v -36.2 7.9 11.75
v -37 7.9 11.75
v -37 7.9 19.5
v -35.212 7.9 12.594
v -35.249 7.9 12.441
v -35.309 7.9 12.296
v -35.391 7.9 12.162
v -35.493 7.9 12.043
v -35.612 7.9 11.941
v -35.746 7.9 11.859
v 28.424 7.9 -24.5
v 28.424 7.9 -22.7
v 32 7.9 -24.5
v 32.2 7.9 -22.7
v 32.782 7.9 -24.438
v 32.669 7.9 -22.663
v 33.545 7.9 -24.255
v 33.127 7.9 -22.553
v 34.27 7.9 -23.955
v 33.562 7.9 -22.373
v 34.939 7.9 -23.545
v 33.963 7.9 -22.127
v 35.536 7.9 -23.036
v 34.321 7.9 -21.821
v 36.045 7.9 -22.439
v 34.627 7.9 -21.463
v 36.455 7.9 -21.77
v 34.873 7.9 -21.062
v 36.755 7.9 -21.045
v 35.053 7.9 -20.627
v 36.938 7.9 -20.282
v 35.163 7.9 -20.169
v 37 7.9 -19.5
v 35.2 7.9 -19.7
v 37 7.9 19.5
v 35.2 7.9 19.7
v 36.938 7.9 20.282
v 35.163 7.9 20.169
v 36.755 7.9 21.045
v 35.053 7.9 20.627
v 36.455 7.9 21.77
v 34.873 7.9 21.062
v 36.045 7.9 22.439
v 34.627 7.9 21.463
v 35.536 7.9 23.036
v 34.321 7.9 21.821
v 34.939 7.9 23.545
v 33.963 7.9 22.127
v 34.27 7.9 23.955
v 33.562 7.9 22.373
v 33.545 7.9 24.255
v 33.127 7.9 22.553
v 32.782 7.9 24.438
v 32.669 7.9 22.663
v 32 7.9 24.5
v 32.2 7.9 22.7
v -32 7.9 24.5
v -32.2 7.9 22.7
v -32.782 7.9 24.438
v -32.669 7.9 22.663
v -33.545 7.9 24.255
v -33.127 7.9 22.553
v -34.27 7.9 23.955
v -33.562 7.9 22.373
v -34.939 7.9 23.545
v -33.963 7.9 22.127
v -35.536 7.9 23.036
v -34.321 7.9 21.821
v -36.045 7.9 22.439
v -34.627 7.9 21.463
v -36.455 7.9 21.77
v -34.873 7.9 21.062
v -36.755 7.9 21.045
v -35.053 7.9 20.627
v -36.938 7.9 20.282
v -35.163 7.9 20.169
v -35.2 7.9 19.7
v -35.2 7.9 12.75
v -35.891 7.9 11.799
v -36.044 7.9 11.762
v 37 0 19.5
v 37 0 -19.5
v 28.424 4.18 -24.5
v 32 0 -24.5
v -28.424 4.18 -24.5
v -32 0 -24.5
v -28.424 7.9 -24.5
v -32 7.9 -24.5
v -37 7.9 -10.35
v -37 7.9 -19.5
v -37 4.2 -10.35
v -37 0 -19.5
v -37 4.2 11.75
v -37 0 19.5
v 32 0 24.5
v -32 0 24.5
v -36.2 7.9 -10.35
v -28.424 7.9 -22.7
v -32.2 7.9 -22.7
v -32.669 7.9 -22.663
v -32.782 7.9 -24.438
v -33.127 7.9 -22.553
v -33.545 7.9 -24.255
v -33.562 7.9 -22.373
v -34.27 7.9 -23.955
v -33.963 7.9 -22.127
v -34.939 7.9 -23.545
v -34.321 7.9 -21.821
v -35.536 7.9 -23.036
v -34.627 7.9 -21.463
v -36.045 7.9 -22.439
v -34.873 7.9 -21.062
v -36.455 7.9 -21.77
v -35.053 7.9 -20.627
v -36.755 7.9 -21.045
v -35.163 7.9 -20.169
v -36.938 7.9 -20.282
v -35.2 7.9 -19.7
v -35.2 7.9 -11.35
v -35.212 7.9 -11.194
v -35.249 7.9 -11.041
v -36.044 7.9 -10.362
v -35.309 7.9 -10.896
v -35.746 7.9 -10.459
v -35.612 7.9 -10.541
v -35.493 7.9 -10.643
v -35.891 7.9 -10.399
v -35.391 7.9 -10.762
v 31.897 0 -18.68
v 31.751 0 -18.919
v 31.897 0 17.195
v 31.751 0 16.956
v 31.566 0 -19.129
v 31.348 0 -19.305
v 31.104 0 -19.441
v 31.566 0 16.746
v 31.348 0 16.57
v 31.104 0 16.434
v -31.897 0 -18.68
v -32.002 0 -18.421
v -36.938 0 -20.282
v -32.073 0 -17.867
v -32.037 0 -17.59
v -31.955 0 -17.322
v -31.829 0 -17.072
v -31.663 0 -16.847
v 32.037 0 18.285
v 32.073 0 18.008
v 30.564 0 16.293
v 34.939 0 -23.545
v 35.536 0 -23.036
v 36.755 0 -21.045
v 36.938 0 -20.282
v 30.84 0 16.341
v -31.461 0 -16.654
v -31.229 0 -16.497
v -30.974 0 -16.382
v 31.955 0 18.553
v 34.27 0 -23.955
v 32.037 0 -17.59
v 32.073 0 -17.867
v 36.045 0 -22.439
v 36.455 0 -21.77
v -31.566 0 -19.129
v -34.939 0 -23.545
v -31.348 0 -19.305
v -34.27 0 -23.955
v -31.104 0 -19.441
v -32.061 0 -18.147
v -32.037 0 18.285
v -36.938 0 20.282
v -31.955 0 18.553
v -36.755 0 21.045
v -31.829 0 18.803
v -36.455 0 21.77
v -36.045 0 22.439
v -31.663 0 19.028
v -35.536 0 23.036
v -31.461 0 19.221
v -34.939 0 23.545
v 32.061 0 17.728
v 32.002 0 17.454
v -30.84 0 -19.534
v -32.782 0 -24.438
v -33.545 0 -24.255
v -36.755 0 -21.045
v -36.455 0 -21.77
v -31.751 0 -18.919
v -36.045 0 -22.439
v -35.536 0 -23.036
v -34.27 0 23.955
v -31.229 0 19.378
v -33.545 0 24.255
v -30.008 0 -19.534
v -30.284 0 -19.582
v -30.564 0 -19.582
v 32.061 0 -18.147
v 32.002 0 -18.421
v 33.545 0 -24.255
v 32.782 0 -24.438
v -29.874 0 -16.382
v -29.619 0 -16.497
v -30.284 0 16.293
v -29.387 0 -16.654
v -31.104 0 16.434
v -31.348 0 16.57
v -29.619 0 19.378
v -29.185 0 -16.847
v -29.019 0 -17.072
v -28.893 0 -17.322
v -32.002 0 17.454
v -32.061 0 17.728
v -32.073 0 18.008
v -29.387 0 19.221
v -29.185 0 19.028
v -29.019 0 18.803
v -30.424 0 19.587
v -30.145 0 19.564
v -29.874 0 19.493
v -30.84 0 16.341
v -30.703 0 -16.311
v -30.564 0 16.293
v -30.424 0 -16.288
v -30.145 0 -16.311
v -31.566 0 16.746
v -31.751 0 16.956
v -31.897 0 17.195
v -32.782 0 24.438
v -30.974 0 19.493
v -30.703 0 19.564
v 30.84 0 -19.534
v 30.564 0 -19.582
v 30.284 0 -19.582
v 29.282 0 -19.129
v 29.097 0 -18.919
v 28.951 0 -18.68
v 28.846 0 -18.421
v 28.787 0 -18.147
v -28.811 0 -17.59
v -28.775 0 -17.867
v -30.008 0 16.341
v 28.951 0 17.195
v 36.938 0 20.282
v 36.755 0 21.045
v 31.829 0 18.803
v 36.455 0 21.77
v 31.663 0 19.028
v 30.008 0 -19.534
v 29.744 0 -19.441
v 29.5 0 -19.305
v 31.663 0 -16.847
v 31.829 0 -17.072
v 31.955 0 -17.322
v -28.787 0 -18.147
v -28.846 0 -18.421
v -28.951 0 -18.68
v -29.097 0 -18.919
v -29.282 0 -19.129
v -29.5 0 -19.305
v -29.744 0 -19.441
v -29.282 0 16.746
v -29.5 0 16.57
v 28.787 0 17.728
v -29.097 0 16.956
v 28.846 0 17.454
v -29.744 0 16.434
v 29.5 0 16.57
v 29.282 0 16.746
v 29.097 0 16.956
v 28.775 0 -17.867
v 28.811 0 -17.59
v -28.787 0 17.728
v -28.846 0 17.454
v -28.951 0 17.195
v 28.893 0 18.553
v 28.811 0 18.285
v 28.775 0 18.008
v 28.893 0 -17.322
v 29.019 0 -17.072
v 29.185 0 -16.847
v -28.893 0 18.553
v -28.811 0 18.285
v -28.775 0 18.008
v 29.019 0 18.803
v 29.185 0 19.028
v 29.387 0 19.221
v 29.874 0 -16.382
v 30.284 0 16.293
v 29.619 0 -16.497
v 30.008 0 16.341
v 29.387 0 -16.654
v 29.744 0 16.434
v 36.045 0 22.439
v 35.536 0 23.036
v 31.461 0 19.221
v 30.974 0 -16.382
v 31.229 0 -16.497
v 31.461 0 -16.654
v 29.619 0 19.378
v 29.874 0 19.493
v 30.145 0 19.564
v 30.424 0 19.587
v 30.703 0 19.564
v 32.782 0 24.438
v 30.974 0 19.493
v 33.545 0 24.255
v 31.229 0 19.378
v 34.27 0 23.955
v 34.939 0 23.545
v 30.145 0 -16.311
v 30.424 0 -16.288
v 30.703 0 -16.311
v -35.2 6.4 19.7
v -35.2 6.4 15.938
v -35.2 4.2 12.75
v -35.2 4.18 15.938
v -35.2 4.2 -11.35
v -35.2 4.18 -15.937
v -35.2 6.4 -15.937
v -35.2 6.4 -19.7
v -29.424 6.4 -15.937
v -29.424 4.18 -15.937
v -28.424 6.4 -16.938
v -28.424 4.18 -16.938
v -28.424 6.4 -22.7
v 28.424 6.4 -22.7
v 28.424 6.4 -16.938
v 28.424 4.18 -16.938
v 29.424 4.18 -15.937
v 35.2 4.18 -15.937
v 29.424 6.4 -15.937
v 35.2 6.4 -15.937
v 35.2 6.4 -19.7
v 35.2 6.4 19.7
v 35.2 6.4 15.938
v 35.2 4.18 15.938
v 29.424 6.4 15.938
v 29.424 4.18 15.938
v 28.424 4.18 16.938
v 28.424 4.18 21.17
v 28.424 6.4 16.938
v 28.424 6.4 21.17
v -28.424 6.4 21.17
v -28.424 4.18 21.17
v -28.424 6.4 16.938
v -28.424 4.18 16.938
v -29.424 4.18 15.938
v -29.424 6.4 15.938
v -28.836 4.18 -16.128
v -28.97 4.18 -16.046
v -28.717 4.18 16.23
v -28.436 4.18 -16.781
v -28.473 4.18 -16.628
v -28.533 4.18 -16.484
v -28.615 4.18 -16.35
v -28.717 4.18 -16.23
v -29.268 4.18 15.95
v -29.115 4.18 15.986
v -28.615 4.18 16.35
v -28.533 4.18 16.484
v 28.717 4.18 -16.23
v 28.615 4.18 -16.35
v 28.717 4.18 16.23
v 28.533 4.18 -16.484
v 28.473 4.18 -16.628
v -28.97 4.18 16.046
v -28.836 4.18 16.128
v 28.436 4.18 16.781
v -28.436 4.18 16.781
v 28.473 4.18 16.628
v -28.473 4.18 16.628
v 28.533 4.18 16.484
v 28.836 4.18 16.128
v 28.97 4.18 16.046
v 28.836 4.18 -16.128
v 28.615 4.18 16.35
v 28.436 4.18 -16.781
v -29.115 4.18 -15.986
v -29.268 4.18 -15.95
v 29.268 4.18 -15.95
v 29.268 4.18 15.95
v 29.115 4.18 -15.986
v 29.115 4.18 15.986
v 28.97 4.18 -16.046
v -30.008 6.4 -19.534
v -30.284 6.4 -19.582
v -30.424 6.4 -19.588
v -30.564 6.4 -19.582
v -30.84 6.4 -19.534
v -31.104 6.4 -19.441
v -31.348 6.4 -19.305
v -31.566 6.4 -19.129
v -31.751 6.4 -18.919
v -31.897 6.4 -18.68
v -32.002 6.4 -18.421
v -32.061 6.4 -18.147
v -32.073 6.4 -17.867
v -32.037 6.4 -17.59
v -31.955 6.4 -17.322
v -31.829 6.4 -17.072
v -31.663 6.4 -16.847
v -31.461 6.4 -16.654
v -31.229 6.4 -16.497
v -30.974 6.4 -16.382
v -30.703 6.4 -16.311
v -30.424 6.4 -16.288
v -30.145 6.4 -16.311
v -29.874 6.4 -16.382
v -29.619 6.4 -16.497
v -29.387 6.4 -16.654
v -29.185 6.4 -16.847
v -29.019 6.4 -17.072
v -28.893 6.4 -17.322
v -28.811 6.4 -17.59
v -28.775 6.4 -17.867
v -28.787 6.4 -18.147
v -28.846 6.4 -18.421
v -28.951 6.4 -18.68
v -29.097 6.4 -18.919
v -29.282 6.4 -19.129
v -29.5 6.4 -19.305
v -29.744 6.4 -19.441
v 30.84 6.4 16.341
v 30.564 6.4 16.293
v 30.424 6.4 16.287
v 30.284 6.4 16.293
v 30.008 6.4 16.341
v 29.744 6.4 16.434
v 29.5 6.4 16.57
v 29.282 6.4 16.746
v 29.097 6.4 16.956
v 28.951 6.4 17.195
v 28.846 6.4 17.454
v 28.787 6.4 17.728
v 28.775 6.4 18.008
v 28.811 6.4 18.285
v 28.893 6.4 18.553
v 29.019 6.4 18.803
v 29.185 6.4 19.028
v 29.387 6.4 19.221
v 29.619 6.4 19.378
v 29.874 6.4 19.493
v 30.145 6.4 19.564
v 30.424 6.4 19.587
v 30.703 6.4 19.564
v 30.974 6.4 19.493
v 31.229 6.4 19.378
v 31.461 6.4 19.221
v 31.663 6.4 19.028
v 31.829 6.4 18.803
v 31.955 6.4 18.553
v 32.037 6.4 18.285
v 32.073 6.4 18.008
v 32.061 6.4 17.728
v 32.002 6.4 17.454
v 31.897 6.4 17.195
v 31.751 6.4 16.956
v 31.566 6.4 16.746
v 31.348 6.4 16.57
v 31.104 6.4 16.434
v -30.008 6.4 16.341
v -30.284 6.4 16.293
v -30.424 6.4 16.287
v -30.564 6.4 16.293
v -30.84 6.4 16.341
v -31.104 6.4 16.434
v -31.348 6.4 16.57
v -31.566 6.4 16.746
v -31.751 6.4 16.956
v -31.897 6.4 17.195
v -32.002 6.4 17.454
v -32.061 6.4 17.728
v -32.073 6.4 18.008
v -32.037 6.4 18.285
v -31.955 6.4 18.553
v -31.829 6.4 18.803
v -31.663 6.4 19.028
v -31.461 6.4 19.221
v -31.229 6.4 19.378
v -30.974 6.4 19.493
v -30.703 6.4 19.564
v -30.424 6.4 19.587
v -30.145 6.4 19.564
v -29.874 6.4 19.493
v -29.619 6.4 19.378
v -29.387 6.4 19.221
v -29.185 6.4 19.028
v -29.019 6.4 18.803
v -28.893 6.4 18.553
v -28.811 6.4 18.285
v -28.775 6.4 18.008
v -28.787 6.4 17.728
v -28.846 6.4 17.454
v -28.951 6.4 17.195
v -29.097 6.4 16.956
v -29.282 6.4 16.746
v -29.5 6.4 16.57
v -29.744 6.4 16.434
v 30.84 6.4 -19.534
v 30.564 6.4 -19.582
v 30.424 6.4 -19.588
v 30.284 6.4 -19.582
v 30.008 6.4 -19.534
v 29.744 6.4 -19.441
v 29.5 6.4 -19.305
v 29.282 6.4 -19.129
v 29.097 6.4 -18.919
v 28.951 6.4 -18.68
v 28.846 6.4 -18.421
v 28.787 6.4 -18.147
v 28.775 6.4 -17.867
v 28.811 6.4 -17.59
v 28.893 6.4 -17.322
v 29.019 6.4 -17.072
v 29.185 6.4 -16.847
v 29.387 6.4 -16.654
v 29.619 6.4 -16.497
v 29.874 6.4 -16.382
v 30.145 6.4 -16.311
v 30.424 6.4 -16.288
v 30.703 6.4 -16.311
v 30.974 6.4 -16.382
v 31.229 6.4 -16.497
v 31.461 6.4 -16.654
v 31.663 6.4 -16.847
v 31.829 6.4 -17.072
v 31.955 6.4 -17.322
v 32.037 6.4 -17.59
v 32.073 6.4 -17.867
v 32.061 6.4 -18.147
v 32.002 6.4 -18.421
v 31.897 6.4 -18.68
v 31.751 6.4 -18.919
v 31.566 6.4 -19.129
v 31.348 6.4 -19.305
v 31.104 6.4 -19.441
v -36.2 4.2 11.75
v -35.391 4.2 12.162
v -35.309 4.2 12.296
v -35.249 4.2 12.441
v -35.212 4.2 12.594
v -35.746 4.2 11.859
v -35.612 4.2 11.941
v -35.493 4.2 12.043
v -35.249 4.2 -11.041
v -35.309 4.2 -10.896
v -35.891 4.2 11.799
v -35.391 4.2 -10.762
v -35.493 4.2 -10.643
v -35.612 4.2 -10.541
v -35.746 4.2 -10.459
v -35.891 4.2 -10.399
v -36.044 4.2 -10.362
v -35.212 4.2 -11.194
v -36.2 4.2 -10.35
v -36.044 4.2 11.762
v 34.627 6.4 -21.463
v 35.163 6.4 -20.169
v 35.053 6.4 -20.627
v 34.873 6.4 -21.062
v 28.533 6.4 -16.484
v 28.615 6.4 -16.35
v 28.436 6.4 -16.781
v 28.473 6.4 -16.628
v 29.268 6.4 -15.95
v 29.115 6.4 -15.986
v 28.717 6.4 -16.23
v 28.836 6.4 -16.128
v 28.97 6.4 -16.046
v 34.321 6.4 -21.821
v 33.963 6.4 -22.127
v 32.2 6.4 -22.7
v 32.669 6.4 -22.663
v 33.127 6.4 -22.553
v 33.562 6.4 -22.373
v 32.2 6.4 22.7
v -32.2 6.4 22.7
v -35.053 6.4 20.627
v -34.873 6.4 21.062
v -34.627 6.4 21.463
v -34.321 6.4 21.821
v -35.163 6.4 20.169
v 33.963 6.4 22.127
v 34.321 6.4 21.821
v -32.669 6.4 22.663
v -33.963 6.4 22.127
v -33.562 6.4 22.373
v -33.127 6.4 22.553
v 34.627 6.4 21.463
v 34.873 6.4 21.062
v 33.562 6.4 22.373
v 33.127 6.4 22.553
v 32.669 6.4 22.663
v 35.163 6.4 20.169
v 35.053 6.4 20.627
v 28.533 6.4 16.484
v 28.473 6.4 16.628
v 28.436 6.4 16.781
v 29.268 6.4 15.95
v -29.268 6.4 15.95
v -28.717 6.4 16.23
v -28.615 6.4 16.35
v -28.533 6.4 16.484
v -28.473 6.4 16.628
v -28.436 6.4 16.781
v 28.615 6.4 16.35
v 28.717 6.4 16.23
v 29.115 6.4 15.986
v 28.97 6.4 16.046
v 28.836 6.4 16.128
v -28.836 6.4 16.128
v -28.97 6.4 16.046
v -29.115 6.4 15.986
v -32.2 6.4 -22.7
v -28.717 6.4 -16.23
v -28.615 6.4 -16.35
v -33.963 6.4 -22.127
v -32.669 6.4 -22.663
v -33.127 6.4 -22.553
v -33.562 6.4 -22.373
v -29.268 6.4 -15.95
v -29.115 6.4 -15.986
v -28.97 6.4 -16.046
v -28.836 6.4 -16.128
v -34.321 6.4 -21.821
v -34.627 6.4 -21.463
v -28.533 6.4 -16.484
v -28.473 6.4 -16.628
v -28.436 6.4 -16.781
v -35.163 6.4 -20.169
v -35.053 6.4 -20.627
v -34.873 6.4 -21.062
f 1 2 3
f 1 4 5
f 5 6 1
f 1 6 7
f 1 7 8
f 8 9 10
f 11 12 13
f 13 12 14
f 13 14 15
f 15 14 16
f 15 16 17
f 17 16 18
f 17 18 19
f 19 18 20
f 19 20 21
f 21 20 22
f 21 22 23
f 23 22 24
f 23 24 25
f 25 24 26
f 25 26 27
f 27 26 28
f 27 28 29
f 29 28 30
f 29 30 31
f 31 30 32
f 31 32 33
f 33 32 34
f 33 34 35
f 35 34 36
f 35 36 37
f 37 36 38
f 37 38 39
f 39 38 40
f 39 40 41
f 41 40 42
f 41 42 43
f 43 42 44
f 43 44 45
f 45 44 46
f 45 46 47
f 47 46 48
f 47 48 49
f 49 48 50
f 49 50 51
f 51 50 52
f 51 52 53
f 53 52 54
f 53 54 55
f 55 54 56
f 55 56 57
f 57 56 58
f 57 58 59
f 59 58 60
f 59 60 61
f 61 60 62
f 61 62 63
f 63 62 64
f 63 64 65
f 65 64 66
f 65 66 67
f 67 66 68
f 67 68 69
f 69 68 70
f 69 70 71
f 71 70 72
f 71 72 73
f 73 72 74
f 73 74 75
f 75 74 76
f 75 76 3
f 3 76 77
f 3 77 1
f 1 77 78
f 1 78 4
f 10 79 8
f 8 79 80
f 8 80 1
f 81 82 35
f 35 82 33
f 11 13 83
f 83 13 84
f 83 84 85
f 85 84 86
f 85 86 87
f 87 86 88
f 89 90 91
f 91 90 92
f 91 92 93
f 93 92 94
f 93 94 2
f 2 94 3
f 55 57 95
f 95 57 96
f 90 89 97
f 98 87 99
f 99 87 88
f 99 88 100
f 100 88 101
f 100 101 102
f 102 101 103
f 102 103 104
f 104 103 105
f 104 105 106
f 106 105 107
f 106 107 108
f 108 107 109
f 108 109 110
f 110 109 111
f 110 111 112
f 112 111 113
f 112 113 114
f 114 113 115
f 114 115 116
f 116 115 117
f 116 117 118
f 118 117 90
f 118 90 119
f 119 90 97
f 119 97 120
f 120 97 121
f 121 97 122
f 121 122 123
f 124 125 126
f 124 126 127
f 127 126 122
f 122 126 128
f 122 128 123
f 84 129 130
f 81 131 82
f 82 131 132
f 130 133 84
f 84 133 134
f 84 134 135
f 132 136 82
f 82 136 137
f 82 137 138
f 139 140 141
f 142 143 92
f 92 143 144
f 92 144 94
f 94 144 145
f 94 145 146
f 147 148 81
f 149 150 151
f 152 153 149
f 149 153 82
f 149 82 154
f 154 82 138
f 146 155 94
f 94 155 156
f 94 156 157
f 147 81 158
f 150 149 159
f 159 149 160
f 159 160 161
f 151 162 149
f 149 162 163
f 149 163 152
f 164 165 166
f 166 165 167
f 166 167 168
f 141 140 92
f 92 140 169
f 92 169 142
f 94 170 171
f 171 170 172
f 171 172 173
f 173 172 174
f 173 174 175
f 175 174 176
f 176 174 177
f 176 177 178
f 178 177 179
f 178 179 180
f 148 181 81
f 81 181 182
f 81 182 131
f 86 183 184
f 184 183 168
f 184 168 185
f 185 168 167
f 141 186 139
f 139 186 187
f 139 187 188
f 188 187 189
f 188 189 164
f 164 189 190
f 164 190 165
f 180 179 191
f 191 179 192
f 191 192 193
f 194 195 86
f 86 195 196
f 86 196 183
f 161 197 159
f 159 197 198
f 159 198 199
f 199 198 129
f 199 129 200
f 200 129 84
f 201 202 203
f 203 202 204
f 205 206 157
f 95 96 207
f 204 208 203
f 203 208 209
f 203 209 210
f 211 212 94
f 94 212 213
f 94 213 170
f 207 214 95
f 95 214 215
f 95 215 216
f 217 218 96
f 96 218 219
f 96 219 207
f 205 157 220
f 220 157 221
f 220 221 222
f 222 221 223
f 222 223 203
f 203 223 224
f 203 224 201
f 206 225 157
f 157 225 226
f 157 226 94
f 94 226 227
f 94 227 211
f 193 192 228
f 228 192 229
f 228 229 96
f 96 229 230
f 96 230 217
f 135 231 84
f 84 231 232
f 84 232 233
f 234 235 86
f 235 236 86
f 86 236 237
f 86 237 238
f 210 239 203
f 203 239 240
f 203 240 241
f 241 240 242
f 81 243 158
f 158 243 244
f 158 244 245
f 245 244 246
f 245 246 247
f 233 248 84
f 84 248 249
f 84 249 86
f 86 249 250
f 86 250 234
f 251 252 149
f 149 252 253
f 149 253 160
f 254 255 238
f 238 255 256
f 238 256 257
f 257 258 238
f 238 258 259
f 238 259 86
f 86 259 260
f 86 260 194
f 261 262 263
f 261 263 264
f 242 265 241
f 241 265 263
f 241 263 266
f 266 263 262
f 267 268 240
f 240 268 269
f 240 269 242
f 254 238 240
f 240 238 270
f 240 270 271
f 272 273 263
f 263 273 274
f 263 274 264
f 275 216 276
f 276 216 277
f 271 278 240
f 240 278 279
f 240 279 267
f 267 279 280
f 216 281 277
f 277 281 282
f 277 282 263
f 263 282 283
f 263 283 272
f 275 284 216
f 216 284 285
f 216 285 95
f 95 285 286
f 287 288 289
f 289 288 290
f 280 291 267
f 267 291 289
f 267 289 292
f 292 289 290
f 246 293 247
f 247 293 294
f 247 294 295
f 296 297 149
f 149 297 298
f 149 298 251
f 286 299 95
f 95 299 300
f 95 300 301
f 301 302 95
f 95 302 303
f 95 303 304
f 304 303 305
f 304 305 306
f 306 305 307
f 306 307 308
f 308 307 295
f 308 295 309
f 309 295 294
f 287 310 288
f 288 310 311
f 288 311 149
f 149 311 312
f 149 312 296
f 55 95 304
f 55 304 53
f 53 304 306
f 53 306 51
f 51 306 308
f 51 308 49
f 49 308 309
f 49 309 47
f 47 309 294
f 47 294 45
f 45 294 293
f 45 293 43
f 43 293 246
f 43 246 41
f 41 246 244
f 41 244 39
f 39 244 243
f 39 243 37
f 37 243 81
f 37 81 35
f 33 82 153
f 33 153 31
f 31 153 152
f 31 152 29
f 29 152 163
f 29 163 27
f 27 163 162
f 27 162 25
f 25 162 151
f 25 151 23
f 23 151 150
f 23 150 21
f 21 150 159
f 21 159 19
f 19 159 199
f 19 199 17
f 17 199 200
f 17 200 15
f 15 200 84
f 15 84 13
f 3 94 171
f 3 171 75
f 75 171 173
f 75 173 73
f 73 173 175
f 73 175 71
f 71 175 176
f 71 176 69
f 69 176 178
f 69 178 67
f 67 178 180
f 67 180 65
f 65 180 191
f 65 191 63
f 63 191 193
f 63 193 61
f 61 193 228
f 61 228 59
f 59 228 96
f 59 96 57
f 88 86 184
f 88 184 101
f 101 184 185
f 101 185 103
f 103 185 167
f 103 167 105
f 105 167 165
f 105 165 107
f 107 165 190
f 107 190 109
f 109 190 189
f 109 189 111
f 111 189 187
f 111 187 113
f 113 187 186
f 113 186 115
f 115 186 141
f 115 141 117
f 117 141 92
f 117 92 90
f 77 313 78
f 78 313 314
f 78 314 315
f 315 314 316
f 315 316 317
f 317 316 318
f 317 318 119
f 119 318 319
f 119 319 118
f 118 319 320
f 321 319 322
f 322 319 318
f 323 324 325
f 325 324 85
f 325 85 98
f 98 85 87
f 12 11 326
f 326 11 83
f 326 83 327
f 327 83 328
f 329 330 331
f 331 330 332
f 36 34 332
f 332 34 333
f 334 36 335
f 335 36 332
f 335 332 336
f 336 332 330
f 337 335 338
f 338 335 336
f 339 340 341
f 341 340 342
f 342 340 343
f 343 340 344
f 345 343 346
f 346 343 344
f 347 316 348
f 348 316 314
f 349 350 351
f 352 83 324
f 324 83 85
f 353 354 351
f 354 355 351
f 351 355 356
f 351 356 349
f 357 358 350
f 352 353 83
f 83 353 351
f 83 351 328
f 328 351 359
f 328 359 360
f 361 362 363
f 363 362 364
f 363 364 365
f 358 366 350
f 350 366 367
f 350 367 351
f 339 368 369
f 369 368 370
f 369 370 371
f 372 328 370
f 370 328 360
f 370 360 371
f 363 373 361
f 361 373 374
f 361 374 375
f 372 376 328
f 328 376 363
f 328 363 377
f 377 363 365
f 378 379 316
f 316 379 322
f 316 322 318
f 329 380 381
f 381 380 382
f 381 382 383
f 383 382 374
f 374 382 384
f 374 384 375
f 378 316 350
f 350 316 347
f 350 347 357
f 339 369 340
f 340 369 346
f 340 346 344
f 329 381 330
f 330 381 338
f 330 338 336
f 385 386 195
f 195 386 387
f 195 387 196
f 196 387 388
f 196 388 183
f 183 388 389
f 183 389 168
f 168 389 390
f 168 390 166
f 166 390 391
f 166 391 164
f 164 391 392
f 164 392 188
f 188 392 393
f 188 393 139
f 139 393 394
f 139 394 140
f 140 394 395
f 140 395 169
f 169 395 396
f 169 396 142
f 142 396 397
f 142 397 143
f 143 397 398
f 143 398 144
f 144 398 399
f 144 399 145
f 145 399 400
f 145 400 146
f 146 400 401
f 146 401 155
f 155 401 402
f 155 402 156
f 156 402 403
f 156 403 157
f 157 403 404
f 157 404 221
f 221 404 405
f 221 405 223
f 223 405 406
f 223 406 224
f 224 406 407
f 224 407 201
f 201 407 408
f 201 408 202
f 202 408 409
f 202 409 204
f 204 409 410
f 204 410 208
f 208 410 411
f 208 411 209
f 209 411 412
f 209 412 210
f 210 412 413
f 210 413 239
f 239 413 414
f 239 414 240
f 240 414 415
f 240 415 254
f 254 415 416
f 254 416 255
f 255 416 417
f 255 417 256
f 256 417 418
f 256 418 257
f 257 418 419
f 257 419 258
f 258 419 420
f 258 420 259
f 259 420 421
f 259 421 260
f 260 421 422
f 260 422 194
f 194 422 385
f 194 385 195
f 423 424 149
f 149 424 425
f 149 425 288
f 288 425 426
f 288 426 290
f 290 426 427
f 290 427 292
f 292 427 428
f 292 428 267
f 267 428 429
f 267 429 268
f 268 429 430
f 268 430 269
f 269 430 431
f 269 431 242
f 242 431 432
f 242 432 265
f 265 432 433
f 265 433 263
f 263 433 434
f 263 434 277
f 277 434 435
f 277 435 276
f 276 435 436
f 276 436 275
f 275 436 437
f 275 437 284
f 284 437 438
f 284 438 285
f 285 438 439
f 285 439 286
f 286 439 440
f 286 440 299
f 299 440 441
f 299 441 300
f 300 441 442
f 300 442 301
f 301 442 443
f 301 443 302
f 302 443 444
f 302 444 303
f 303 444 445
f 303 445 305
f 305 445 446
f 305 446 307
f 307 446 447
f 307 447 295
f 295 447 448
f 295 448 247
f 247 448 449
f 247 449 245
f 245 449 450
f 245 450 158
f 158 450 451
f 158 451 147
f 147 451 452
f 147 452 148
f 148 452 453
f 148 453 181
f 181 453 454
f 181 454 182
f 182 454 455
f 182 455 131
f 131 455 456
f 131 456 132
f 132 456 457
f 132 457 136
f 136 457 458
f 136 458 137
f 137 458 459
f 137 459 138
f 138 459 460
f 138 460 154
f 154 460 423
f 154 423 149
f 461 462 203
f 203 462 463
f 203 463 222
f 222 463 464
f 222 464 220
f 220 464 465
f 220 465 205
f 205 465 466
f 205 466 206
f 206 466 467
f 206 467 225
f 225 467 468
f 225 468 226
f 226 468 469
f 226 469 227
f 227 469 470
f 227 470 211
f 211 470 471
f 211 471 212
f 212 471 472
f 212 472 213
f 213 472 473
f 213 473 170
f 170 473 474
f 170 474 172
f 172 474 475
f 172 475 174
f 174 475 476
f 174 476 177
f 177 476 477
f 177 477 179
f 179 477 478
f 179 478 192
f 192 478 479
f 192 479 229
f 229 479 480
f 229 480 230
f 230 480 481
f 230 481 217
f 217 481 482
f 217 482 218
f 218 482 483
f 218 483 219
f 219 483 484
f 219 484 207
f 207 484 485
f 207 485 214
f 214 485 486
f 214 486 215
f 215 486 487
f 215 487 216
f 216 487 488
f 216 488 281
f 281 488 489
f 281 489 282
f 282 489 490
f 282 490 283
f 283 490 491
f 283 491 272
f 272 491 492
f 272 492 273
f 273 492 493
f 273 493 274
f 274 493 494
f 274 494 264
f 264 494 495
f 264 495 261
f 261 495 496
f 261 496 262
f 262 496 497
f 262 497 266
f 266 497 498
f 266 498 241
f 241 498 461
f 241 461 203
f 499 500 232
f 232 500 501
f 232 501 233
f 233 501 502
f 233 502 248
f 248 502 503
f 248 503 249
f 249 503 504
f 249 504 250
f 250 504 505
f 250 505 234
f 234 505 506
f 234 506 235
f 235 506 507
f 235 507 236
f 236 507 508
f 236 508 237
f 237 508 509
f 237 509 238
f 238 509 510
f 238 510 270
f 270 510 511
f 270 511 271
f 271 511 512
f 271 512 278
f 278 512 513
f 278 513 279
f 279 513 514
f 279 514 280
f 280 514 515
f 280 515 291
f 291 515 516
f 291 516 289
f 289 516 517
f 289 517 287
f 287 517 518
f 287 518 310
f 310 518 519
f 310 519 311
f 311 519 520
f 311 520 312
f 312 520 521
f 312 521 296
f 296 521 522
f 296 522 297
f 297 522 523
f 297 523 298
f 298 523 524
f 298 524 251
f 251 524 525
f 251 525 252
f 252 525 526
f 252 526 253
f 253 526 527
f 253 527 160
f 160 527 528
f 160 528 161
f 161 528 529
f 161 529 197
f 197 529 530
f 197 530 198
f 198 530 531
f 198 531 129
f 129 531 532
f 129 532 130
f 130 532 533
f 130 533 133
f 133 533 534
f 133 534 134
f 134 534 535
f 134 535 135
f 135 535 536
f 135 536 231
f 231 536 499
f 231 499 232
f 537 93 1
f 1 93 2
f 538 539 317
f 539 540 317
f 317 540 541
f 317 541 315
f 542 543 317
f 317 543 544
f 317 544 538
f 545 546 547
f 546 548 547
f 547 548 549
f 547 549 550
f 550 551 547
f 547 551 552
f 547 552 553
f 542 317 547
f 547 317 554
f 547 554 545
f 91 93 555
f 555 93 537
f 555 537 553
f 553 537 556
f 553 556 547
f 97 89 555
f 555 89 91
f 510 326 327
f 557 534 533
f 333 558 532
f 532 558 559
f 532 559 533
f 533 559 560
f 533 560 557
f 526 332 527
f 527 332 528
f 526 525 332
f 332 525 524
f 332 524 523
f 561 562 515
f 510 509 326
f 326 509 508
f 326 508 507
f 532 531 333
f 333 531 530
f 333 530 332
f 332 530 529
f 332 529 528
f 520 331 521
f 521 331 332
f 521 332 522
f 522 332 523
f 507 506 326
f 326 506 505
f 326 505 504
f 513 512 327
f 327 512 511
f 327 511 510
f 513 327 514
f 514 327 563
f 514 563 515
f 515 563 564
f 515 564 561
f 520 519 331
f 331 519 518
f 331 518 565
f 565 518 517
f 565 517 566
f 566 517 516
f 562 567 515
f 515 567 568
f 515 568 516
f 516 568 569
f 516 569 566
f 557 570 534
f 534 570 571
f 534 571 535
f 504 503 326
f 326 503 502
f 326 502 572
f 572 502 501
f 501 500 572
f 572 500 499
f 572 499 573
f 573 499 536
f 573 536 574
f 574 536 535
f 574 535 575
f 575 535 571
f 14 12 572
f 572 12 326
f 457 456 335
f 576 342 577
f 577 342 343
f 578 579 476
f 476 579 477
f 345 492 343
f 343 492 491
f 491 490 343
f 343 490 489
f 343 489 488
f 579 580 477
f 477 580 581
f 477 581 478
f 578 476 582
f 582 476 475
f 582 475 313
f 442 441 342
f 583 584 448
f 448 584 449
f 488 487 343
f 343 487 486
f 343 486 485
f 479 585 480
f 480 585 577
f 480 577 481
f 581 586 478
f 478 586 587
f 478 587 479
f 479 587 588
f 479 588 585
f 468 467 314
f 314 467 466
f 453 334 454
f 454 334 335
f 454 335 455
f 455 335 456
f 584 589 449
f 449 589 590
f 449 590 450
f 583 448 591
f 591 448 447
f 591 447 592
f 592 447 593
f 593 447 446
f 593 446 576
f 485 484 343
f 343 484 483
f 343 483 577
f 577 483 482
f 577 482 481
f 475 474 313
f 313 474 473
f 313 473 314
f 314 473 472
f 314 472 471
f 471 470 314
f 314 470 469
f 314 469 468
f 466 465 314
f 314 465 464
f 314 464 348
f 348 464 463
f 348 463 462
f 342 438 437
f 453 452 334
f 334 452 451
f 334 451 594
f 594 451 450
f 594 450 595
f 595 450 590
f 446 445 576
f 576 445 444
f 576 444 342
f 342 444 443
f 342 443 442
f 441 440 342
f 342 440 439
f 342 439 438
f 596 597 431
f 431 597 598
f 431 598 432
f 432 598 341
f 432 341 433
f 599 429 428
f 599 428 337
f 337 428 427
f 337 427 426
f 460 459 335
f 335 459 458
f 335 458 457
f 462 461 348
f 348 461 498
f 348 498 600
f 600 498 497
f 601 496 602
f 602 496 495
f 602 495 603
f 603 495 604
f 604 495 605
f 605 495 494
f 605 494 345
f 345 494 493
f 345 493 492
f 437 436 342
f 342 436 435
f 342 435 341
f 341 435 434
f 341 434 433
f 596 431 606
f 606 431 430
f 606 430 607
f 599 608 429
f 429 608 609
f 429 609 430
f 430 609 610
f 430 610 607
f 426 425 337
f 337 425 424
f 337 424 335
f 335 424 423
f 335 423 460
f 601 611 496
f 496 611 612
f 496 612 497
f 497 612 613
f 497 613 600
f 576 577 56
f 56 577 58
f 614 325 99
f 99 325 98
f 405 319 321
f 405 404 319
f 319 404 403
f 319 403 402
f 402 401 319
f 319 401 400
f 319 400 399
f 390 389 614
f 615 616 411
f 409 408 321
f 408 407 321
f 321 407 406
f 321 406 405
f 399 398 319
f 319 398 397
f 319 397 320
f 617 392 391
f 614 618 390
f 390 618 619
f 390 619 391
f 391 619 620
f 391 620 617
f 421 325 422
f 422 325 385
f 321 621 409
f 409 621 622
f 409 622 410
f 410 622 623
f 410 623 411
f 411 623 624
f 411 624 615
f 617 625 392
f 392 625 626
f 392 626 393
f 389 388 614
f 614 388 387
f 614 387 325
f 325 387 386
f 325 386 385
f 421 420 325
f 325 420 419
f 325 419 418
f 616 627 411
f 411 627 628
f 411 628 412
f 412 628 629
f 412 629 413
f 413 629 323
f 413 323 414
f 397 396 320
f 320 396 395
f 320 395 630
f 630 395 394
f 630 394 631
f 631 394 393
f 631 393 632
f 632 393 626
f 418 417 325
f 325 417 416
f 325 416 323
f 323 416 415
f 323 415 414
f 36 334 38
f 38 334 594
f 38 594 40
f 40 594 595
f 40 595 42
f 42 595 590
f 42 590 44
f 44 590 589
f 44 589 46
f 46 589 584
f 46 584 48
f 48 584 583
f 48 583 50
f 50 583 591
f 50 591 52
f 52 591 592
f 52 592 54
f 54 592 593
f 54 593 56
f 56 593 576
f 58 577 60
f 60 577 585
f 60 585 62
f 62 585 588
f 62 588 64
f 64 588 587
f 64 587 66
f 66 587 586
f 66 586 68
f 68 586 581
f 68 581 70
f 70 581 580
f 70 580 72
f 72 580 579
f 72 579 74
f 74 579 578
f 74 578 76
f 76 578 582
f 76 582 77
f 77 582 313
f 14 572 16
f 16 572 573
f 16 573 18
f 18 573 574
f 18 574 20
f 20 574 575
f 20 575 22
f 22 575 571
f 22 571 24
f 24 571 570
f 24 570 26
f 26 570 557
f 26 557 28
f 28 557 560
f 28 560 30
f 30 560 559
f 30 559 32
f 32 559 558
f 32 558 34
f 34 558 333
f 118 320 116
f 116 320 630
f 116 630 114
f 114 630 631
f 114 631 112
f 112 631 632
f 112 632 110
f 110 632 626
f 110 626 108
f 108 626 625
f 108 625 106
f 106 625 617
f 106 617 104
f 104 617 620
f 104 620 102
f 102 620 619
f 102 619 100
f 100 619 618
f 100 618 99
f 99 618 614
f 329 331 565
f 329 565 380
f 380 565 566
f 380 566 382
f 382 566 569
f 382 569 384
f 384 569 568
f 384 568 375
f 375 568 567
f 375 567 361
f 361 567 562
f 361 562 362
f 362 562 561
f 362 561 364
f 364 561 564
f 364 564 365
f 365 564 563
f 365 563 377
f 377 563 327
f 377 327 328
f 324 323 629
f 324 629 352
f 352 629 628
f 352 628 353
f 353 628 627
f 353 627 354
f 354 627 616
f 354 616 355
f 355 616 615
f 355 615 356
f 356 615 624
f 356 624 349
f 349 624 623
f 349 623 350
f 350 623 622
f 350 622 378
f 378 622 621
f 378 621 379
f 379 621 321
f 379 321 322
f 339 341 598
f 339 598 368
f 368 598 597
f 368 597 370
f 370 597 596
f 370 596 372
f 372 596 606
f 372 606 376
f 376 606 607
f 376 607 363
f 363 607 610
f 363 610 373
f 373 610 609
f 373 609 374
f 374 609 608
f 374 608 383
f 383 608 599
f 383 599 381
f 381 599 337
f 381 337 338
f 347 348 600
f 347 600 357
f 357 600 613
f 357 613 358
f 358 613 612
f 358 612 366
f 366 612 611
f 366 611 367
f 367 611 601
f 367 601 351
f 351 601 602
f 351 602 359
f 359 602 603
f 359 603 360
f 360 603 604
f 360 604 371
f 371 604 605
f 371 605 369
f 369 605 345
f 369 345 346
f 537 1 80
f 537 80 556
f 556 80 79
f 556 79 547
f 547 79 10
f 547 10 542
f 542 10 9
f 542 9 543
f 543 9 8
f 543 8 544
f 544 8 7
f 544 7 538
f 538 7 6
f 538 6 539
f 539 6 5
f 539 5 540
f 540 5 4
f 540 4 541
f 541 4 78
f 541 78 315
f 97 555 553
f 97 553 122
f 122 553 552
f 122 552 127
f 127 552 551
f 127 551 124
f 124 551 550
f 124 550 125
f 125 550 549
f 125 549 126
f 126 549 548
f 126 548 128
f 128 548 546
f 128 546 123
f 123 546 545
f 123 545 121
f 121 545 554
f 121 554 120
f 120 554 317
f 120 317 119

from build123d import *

# Parameters (mm, degrees)
SKETCH1_W           = 74
SKETCH1_H           = 49
BOSS_EXTRUDE1_DEPTH = 7.9
FILLET1_R           = 5
CUT_EXTRUDE4_DEPTH  = 3.72
SKETCH3_R           = 1.65
CUT_EXTRUDE6_DEPTH  = 7.9
SKETCH7_W           = 22.1
SKETCH7_H           = 3.7
CUT_EXTRUDE7_DEPTH  = 3
SKETCH8_W           = 70.4
SKETCH8_H           = 45.4
CUT_EXTRUDE8_DEPTH  = 1.5
FILLET3_R           = 3
FILLET4_R           = 1
FILLET5_R           = 1
FILLET6_R           = 1


with BuildPart() as part:
    # Sketch1 → Boss-Extrude1 (new body)
    with BuildSketch(Plane(origin=(0, 0, 0), x_dir=(1, 0, 0), z_dir=(0, 1, 0))):
        Rectangle(SKETCH1_W, SKETCH1_H)
    extrude(amount=BOSS_EXTRUDE1_DEPTH)

    # Fillet1
    fillet1_edges = [part.edges().sort_by_distance(p)[0] for p in [
        (37, 3.95, 24.5),
        (-37, 3.95, 24.5),
        (-37, 3.95, -24.5),
        (37, 3.95, -24.5),
    ]]
    fillet(fillet1_edges, radius=FILLET1_R)

    # Sketch5 → Cut-Extrude4 (cut)
    with BuildSketch(Plane(origin=(0, 7.9, 0), x_dir=(1, 0, 0), z_dir=(0, 1, 0))):
        Polygon((-35.2, 15.9375), (-28.424, 15.9375), (-28.424, 21.171805633), (-28.424, 24.5), (28.424, 24.5), (28.424, 21.171805633), (28.424, 15.9375), (35.2, 15.9375), (35.2, -15.9375), (28.424, -15.9375), (28.424, -21.17), (-28.424, -21.17), (-28.424, -15.9375), (-35.2, -15.9375), align=None)
    extrude(amount=-CUT_EXTRUDE4_DEPTH, mode=Mode.SUBTRACT)

    # Sketch3 → Cut-Extrude6 (cut)
    with BuildSketch(Plane(origin=(0, 7.9, 0), x_dir=(1, 0, 0), z_dir=(0, 1, 0))):
        with Locations((-30.424, 17.9375)):
            Circle(SKETCH3_R)
        with Locations((30.424, 17.9375)):
            Circle(SKETCH3_R)
        with Locations((-30.424, -17.9375)):
            Circle(SKETCH3_R)
        with Locations((30.424, -17.9375)):
            Circle(SKETCH3_R)
    extrude(amount=-CUT_EXTRUDE6_DEPTH, mode=Mode.SUBTRACT)

    # Sketch7 → Cut-Extrude7 (cut)
    with BuildSketch(Plane.ZY.offset(37)):
        with Locations((0.7, 6.05)):
            Rectangle(SKETCH7_W, SKETCH7_H)
    extrude(amount=-CUT_EXTRUDE7_DEPTH, mode=Mode.SUBTRACT)

    # Sketch8 → Cut-Extrude8 (cut)
    with BuildSketch(Plane(origin=(0, 7.9, 0), x_dir=(1, 0, 0), z_dir=(0, 1, 0))):
        Rectangle(SKETCH8_W, SKETCH8_H)
    extrude(amount=-CUT_EXTRUDE8_DEPTH, mode=Mode.SUBTRACT)

    # Fillet3
    fillet3_edges = [part.edges().sort_by_distance(p)[0] for p in [
        (-35.2, 7.15, -22.7),
        (35.2, 7.15, -22.7),
        (-35.2, 7.15, 22.7),
        (35.2, 7.15, 22.7),
    ]]
    fillet(fillet3_edges, radius=FILLET3_R)

    # Fillet4
    fillet4_edges = [part.edges().sort_by_distance(p)[0] for p in [
        (-28.424, 5.29, -15.9375),
        (28.424, 5.29, -15.9375),
    ]]
    fillet(fillet4_edges, radius=FILLET4_R)

    # Fillet5
    fillet5_edges = [part.edges().sort_by_distance(p)[0] for p in [
        (28.424, 5.29, 15.9375),
        (-28.424, 5.29, 15.9375),
    ]]
    fillet(fillet5_edges, radius=FILLET5_R)

    # Fillet6
    fillet6_edges = [part.edges().sort_by_distance(p)[0] for p in [
        (-35.2, 6.05, -10.35),
        (-35.2, 6.05, 11.75),
    ]]
    fillet(fillet6_edges, radius=FILLET6_R)


solid = part.part
